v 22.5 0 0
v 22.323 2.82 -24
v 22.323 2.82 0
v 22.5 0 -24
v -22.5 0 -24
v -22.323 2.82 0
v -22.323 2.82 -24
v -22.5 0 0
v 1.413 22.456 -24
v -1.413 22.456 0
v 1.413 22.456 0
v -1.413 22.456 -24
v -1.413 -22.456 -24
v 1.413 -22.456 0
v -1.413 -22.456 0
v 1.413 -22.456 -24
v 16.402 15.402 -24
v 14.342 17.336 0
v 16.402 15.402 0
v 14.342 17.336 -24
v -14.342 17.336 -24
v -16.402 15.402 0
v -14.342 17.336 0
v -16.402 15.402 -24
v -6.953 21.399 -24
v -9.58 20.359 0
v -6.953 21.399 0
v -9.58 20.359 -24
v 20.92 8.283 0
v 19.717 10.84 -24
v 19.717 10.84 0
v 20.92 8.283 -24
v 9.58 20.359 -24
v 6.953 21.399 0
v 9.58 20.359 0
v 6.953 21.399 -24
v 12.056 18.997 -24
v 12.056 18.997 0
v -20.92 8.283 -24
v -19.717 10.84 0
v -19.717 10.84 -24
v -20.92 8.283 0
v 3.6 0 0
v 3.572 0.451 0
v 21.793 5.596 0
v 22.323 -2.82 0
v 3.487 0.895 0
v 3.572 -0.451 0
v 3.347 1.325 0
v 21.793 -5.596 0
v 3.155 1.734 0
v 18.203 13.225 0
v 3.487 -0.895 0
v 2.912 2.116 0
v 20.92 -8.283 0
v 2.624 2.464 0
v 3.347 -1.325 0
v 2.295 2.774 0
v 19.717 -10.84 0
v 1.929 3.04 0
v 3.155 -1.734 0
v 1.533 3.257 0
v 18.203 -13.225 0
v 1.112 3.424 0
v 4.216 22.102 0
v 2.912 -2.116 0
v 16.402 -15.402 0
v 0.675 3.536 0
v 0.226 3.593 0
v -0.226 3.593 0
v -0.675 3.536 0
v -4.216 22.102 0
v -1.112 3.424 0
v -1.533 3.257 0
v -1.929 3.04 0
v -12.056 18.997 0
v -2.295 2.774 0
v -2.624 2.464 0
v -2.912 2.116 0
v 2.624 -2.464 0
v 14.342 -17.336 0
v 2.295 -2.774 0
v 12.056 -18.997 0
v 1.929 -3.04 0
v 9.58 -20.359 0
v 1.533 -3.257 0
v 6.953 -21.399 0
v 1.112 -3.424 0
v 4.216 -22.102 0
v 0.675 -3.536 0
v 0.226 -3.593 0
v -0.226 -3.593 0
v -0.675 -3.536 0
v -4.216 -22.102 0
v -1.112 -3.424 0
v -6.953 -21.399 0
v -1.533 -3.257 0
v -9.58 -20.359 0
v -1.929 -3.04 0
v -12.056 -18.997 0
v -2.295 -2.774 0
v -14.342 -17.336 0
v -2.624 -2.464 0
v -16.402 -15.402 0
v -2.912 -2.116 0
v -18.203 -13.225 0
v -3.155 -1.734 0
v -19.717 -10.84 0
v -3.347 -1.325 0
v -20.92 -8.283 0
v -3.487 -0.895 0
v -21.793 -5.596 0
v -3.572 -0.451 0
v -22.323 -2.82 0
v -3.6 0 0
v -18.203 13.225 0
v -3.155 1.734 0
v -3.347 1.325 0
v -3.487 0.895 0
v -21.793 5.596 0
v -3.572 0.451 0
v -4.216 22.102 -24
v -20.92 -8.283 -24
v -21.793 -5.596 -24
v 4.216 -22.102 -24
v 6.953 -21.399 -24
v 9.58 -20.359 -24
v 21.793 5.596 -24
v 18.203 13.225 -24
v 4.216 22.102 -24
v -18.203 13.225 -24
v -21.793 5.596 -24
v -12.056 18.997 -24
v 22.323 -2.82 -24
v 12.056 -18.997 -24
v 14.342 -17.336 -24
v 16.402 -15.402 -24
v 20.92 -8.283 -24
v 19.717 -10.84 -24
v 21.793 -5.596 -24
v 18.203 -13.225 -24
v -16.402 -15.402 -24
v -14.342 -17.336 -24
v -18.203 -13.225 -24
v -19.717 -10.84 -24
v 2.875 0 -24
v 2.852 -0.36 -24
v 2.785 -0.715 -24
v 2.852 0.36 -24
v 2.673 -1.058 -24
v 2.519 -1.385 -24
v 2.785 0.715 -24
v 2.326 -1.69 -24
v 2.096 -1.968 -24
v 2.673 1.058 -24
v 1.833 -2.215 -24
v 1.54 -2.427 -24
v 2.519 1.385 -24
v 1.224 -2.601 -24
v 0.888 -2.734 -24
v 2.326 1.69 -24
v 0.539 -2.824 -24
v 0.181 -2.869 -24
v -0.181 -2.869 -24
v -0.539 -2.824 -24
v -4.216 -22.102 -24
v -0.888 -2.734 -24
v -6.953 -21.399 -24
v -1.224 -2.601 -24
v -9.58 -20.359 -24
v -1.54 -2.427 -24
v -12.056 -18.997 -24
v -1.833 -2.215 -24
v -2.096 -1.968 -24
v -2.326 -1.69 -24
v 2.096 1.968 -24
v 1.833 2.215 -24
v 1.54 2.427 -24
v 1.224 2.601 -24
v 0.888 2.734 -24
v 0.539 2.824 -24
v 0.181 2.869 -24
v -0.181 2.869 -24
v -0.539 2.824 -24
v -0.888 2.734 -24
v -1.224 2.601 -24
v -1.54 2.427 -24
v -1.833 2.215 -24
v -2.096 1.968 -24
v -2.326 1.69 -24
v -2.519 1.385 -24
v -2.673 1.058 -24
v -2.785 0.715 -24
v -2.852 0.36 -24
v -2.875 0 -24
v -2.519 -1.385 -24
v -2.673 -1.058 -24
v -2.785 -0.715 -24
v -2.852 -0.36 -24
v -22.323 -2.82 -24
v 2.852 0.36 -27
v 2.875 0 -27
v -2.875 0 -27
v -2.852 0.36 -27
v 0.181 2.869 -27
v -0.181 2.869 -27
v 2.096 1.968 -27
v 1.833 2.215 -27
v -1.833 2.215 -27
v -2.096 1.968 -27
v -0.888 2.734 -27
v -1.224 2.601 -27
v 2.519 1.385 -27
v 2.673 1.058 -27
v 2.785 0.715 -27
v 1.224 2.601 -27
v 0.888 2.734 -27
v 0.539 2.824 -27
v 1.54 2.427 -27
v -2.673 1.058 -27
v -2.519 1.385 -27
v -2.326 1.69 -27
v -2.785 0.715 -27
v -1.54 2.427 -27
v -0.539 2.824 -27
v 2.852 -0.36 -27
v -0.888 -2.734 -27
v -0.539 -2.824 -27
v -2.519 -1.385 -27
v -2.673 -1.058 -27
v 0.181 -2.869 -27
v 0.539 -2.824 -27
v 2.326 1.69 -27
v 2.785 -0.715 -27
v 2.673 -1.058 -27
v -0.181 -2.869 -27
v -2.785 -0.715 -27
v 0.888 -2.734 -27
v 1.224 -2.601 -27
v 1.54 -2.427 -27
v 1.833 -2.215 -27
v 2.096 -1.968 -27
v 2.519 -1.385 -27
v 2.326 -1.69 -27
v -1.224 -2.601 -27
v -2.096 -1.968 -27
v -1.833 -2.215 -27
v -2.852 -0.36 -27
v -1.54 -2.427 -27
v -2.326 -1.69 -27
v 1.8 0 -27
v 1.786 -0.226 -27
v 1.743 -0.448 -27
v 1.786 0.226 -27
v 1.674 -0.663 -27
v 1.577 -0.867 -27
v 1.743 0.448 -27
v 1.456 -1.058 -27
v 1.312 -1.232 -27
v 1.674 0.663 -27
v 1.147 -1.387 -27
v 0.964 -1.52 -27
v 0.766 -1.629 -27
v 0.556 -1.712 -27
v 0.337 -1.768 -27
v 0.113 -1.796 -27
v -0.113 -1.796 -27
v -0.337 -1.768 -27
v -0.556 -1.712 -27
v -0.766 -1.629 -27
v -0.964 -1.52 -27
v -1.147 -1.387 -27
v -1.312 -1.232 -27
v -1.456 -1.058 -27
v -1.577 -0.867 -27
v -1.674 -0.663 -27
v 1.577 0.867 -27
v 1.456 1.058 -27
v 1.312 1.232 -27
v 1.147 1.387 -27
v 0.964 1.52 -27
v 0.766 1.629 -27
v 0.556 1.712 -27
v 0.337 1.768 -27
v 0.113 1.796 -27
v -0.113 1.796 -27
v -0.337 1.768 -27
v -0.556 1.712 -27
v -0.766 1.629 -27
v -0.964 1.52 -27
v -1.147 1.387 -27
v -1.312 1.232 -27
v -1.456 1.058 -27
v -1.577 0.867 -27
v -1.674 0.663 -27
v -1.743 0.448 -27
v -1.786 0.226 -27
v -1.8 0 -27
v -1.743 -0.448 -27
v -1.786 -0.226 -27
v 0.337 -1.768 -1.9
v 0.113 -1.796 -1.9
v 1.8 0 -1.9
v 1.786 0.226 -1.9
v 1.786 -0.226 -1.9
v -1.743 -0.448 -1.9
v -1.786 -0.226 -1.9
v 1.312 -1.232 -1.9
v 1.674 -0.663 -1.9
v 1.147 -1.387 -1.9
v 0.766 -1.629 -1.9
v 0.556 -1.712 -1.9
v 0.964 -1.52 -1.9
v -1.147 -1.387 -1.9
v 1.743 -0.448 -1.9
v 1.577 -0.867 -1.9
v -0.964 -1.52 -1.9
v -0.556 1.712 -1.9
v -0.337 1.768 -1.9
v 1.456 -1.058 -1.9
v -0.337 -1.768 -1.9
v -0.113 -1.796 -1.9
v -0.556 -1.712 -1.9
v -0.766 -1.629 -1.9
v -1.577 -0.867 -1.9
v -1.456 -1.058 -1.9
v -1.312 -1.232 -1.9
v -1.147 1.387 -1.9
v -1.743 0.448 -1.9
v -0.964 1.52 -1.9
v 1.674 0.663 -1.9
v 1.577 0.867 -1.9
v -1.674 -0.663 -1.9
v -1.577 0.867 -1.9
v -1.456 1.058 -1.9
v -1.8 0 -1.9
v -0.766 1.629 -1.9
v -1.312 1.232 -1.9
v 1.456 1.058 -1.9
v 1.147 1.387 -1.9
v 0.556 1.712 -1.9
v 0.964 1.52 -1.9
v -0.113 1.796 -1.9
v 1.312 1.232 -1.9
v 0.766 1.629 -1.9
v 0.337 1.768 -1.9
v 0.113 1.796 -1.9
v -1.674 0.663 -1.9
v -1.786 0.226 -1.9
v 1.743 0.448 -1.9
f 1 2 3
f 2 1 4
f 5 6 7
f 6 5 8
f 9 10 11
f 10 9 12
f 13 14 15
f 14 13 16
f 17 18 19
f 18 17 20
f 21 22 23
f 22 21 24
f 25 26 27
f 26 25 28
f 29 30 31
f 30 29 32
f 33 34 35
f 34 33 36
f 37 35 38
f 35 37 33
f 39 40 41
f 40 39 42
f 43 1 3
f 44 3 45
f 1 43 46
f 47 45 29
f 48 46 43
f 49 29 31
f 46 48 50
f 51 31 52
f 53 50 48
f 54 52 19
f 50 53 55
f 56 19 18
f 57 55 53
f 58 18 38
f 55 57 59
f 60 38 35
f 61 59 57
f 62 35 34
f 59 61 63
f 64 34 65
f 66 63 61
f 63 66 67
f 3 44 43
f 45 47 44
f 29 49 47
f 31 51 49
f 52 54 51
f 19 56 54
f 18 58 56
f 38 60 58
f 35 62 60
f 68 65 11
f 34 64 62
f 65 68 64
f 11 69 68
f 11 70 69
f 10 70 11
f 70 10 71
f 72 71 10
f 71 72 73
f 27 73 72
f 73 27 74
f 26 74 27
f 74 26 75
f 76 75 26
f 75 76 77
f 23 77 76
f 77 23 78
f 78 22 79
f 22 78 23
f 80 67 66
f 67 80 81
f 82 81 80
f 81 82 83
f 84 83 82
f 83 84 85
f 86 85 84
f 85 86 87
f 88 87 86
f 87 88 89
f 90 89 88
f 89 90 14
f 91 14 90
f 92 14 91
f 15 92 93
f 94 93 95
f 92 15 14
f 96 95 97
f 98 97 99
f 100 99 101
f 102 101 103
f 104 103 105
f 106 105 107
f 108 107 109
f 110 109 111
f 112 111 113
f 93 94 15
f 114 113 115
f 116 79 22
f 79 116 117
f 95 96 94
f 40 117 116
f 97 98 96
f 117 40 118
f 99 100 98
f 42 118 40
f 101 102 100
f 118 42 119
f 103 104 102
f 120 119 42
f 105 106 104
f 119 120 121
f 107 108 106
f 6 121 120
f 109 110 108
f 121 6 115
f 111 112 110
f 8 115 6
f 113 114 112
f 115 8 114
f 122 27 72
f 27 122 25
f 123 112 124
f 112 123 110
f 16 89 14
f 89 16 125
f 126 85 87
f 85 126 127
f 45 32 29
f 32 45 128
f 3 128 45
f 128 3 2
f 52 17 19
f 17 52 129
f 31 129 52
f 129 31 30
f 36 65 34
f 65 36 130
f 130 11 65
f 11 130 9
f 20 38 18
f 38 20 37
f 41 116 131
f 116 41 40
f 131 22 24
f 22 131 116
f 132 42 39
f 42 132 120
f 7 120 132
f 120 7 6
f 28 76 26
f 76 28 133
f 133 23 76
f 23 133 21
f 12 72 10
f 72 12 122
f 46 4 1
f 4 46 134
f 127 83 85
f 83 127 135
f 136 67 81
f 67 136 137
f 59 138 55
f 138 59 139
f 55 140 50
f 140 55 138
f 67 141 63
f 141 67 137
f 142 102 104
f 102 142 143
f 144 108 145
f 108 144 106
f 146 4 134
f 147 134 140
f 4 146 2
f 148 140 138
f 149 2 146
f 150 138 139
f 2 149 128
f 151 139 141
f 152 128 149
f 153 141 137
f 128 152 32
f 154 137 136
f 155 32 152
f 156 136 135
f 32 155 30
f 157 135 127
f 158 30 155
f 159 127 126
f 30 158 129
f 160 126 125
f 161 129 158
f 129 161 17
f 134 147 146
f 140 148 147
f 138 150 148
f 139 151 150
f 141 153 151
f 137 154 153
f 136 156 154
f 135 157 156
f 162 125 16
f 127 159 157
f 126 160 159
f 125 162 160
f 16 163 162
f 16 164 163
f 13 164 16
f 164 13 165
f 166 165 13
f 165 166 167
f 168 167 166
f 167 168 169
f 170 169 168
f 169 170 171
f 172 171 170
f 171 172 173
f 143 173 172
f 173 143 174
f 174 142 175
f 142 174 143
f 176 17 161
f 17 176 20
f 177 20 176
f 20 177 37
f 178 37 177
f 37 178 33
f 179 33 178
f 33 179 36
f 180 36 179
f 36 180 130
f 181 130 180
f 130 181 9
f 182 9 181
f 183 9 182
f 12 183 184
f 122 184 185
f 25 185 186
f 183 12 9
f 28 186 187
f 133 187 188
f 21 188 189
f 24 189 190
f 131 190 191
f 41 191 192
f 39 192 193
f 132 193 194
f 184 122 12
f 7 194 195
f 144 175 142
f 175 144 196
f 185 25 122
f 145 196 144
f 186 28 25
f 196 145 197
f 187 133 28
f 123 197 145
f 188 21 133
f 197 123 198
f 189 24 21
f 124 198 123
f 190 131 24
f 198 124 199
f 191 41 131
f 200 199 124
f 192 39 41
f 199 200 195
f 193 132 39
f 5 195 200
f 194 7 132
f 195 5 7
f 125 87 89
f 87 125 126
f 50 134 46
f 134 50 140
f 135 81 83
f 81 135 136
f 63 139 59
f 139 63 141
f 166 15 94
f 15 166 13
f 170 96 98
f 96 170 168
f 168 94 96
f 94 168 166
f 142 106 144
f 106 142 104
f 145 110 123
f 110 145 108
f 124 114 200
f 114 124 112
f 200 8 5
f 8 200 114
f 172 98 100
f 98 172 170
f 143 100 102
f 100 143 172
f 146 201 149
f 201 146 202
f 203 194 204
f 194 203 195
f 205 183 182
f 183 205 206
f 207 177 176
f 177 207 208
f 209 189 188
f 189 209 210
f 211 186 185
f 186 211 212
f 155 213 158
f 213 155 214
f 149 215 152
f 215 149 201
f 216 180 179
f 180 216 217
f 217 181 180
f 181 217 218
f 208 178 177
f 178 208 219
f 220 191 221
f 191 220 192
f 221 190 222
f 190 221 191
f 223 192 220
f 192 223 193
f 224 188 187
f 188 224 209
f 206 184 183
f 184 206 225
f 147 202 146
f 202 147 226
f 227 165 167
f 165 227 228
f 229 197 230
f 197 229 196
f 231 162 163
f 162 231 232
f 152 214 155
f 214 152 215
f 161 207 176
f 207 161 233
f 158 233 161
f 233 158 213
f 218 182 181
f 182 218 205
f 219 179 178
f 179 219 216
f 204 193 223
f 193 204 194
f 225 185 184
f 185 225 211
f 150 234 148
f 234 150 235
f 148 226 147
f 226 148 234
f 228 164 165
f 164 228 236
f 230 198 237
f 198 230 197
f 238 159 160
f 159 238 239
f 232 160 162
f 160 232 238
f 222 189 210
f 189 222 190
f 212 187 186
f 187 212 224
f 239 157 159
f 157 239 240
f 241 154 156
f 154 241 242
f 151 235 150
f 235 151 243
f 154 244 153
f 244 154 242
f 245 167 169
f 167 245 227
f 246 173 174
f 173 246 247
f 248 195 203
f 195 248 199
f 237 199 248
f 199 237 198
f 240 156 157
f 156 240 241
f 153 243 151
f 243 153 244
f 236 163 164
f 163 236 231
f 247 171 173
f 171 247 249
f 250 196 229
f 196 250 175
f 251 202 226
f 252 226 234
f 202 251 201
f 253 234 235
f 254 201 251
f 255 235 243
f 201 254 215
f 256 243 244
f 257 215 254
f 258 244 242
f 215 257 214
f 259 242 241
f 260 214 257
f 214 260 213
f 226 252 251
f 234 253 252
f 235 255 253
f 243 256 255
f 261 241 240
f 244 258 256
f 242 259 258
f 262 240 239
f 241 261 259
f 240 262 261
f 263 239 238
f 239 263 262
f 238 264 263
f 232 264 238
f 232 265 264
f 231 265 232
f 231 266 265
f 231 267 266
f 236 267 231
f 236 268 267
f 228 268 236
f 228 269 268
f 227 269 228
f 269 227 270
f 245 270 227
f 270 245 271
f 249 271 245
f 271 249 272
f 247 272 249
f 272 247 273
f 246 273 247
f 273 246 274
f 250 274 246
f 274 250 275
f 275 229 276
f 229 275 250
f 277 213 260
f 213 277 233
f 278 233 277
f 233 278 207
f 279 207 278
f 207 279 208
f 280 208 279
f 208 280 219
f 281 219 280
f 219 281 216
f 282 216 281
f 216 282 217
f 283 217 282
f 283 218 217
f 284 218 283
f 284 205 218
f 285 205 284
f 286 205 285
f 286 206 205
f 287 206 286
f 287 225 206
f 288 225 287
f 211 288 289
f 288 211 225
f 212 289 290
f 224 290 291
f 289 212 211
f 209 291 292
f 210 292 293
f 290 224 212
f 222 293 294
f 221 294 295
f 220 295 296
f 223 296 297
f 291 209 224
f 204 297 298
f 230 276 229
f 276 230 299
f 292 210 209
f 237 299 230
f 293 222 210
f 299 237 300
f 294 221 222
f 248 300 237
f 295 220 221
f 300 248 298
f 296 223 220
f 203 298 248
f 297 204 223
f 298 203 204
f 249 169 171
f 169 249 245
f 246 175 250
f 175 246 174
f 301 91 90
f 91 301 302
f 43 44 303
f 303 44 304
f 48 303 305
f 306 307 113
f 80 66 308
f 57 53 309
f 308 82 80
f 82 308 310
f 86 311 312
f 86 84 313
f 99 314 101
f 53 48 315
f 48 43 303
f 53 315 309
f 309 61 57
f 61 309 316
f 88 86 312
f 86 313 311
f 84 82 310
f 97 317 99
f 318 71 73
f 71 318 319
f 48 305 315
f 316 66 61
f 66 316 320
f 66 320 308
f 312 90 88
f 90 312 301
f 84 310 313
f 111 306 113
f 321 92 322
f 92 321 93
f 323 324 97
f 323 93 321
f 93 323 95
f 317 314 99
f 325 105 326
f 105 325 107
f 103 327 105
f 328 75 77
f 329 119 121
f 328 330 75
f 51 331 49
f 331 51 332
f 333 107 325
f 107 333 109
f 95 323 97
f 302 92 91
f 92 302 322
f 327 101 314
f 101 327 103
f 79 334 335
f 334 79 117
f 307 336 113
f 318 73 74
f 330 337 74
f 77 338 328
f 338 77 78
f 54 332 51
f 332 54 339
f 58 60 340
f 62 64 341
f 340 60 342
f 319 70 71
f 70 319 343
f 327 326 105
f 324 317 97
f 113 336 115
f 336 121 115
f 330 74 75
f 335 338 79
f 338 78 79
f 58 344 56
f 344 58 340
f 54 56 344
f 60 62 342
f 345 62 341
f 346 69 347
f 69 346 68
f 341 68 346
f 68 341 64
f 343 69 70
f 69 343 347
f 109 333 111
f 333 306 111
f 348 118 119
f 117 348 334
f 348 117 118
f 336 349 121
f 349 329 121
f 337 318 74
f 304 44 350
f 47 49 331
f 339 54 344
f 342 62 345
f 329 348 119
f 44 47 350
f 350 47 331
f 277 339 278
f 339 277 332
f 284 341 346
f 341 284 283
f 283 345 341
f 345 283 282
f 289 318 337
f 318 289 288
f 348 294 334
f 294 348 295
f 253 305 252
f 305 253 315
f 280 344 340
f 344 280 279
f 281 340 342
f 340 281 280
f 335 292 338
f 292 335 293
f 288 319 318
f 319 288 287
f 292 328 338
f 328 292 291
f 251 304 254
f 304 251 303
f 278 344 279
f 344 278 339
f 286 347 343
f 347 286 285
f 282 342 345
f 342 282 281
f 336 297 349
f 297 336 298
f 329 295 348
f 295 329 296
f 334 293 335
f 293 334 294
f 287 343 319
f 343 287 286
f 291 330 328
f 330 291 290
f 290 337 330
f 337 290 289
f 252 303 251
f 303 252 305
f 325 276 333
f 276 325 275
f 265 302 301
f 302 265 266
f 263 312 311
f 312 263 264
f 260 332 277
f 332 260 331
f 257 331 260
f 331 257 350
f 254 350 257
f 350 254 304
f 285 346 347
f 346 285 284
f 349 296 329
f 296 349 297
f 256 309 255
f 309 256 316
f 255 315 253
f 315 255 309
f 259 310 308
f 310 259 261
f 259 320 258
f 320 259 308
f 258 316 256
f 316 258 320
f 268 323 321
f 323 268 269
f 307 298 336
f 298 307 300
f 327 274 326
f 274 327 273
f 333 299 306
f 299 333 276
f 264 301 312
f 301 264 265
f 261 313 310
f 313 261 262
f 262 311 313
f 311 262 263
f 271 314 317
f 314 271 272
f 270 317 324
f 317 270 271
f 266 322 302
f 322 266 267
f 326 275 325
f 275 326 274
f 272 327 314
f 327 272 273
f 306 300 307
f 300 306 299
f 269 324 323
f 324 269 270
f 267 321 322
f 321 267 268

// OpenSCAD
$fn = 50;

difference() {
	union() {
		translate(v = [0, 0, -24.0]) {
			cylinder(h = 24, r = 22.5);
		}
		#translate(v = [0, 0, -27.0]) {
			cylinder(h = 27, r = 2.875);
		}
	}
	union() {
		translate(v = [0, 0, 0]) {
			rotate(a = [0, 0, 0]) {
				difference() {
					union() {
						translate(v = [0, 0, -27.0]) {
							cylinder(h = 27, r = 1.5);
						}
						translate(v = [0, 0, -1.9]) {
							cylinder(h = 1.9, r1 = 1.8, r2 = 3.6);
						}
						translate(v = [0, 0, -27.0]) {
							cylinder(h = 27, r = 1.8);
						}
						translate(v = [0, 0, -27.0]) {
							cylinder(h = 27, r = 1.5);
						}
					}
					union();
				}
			}
		}
	}
}
